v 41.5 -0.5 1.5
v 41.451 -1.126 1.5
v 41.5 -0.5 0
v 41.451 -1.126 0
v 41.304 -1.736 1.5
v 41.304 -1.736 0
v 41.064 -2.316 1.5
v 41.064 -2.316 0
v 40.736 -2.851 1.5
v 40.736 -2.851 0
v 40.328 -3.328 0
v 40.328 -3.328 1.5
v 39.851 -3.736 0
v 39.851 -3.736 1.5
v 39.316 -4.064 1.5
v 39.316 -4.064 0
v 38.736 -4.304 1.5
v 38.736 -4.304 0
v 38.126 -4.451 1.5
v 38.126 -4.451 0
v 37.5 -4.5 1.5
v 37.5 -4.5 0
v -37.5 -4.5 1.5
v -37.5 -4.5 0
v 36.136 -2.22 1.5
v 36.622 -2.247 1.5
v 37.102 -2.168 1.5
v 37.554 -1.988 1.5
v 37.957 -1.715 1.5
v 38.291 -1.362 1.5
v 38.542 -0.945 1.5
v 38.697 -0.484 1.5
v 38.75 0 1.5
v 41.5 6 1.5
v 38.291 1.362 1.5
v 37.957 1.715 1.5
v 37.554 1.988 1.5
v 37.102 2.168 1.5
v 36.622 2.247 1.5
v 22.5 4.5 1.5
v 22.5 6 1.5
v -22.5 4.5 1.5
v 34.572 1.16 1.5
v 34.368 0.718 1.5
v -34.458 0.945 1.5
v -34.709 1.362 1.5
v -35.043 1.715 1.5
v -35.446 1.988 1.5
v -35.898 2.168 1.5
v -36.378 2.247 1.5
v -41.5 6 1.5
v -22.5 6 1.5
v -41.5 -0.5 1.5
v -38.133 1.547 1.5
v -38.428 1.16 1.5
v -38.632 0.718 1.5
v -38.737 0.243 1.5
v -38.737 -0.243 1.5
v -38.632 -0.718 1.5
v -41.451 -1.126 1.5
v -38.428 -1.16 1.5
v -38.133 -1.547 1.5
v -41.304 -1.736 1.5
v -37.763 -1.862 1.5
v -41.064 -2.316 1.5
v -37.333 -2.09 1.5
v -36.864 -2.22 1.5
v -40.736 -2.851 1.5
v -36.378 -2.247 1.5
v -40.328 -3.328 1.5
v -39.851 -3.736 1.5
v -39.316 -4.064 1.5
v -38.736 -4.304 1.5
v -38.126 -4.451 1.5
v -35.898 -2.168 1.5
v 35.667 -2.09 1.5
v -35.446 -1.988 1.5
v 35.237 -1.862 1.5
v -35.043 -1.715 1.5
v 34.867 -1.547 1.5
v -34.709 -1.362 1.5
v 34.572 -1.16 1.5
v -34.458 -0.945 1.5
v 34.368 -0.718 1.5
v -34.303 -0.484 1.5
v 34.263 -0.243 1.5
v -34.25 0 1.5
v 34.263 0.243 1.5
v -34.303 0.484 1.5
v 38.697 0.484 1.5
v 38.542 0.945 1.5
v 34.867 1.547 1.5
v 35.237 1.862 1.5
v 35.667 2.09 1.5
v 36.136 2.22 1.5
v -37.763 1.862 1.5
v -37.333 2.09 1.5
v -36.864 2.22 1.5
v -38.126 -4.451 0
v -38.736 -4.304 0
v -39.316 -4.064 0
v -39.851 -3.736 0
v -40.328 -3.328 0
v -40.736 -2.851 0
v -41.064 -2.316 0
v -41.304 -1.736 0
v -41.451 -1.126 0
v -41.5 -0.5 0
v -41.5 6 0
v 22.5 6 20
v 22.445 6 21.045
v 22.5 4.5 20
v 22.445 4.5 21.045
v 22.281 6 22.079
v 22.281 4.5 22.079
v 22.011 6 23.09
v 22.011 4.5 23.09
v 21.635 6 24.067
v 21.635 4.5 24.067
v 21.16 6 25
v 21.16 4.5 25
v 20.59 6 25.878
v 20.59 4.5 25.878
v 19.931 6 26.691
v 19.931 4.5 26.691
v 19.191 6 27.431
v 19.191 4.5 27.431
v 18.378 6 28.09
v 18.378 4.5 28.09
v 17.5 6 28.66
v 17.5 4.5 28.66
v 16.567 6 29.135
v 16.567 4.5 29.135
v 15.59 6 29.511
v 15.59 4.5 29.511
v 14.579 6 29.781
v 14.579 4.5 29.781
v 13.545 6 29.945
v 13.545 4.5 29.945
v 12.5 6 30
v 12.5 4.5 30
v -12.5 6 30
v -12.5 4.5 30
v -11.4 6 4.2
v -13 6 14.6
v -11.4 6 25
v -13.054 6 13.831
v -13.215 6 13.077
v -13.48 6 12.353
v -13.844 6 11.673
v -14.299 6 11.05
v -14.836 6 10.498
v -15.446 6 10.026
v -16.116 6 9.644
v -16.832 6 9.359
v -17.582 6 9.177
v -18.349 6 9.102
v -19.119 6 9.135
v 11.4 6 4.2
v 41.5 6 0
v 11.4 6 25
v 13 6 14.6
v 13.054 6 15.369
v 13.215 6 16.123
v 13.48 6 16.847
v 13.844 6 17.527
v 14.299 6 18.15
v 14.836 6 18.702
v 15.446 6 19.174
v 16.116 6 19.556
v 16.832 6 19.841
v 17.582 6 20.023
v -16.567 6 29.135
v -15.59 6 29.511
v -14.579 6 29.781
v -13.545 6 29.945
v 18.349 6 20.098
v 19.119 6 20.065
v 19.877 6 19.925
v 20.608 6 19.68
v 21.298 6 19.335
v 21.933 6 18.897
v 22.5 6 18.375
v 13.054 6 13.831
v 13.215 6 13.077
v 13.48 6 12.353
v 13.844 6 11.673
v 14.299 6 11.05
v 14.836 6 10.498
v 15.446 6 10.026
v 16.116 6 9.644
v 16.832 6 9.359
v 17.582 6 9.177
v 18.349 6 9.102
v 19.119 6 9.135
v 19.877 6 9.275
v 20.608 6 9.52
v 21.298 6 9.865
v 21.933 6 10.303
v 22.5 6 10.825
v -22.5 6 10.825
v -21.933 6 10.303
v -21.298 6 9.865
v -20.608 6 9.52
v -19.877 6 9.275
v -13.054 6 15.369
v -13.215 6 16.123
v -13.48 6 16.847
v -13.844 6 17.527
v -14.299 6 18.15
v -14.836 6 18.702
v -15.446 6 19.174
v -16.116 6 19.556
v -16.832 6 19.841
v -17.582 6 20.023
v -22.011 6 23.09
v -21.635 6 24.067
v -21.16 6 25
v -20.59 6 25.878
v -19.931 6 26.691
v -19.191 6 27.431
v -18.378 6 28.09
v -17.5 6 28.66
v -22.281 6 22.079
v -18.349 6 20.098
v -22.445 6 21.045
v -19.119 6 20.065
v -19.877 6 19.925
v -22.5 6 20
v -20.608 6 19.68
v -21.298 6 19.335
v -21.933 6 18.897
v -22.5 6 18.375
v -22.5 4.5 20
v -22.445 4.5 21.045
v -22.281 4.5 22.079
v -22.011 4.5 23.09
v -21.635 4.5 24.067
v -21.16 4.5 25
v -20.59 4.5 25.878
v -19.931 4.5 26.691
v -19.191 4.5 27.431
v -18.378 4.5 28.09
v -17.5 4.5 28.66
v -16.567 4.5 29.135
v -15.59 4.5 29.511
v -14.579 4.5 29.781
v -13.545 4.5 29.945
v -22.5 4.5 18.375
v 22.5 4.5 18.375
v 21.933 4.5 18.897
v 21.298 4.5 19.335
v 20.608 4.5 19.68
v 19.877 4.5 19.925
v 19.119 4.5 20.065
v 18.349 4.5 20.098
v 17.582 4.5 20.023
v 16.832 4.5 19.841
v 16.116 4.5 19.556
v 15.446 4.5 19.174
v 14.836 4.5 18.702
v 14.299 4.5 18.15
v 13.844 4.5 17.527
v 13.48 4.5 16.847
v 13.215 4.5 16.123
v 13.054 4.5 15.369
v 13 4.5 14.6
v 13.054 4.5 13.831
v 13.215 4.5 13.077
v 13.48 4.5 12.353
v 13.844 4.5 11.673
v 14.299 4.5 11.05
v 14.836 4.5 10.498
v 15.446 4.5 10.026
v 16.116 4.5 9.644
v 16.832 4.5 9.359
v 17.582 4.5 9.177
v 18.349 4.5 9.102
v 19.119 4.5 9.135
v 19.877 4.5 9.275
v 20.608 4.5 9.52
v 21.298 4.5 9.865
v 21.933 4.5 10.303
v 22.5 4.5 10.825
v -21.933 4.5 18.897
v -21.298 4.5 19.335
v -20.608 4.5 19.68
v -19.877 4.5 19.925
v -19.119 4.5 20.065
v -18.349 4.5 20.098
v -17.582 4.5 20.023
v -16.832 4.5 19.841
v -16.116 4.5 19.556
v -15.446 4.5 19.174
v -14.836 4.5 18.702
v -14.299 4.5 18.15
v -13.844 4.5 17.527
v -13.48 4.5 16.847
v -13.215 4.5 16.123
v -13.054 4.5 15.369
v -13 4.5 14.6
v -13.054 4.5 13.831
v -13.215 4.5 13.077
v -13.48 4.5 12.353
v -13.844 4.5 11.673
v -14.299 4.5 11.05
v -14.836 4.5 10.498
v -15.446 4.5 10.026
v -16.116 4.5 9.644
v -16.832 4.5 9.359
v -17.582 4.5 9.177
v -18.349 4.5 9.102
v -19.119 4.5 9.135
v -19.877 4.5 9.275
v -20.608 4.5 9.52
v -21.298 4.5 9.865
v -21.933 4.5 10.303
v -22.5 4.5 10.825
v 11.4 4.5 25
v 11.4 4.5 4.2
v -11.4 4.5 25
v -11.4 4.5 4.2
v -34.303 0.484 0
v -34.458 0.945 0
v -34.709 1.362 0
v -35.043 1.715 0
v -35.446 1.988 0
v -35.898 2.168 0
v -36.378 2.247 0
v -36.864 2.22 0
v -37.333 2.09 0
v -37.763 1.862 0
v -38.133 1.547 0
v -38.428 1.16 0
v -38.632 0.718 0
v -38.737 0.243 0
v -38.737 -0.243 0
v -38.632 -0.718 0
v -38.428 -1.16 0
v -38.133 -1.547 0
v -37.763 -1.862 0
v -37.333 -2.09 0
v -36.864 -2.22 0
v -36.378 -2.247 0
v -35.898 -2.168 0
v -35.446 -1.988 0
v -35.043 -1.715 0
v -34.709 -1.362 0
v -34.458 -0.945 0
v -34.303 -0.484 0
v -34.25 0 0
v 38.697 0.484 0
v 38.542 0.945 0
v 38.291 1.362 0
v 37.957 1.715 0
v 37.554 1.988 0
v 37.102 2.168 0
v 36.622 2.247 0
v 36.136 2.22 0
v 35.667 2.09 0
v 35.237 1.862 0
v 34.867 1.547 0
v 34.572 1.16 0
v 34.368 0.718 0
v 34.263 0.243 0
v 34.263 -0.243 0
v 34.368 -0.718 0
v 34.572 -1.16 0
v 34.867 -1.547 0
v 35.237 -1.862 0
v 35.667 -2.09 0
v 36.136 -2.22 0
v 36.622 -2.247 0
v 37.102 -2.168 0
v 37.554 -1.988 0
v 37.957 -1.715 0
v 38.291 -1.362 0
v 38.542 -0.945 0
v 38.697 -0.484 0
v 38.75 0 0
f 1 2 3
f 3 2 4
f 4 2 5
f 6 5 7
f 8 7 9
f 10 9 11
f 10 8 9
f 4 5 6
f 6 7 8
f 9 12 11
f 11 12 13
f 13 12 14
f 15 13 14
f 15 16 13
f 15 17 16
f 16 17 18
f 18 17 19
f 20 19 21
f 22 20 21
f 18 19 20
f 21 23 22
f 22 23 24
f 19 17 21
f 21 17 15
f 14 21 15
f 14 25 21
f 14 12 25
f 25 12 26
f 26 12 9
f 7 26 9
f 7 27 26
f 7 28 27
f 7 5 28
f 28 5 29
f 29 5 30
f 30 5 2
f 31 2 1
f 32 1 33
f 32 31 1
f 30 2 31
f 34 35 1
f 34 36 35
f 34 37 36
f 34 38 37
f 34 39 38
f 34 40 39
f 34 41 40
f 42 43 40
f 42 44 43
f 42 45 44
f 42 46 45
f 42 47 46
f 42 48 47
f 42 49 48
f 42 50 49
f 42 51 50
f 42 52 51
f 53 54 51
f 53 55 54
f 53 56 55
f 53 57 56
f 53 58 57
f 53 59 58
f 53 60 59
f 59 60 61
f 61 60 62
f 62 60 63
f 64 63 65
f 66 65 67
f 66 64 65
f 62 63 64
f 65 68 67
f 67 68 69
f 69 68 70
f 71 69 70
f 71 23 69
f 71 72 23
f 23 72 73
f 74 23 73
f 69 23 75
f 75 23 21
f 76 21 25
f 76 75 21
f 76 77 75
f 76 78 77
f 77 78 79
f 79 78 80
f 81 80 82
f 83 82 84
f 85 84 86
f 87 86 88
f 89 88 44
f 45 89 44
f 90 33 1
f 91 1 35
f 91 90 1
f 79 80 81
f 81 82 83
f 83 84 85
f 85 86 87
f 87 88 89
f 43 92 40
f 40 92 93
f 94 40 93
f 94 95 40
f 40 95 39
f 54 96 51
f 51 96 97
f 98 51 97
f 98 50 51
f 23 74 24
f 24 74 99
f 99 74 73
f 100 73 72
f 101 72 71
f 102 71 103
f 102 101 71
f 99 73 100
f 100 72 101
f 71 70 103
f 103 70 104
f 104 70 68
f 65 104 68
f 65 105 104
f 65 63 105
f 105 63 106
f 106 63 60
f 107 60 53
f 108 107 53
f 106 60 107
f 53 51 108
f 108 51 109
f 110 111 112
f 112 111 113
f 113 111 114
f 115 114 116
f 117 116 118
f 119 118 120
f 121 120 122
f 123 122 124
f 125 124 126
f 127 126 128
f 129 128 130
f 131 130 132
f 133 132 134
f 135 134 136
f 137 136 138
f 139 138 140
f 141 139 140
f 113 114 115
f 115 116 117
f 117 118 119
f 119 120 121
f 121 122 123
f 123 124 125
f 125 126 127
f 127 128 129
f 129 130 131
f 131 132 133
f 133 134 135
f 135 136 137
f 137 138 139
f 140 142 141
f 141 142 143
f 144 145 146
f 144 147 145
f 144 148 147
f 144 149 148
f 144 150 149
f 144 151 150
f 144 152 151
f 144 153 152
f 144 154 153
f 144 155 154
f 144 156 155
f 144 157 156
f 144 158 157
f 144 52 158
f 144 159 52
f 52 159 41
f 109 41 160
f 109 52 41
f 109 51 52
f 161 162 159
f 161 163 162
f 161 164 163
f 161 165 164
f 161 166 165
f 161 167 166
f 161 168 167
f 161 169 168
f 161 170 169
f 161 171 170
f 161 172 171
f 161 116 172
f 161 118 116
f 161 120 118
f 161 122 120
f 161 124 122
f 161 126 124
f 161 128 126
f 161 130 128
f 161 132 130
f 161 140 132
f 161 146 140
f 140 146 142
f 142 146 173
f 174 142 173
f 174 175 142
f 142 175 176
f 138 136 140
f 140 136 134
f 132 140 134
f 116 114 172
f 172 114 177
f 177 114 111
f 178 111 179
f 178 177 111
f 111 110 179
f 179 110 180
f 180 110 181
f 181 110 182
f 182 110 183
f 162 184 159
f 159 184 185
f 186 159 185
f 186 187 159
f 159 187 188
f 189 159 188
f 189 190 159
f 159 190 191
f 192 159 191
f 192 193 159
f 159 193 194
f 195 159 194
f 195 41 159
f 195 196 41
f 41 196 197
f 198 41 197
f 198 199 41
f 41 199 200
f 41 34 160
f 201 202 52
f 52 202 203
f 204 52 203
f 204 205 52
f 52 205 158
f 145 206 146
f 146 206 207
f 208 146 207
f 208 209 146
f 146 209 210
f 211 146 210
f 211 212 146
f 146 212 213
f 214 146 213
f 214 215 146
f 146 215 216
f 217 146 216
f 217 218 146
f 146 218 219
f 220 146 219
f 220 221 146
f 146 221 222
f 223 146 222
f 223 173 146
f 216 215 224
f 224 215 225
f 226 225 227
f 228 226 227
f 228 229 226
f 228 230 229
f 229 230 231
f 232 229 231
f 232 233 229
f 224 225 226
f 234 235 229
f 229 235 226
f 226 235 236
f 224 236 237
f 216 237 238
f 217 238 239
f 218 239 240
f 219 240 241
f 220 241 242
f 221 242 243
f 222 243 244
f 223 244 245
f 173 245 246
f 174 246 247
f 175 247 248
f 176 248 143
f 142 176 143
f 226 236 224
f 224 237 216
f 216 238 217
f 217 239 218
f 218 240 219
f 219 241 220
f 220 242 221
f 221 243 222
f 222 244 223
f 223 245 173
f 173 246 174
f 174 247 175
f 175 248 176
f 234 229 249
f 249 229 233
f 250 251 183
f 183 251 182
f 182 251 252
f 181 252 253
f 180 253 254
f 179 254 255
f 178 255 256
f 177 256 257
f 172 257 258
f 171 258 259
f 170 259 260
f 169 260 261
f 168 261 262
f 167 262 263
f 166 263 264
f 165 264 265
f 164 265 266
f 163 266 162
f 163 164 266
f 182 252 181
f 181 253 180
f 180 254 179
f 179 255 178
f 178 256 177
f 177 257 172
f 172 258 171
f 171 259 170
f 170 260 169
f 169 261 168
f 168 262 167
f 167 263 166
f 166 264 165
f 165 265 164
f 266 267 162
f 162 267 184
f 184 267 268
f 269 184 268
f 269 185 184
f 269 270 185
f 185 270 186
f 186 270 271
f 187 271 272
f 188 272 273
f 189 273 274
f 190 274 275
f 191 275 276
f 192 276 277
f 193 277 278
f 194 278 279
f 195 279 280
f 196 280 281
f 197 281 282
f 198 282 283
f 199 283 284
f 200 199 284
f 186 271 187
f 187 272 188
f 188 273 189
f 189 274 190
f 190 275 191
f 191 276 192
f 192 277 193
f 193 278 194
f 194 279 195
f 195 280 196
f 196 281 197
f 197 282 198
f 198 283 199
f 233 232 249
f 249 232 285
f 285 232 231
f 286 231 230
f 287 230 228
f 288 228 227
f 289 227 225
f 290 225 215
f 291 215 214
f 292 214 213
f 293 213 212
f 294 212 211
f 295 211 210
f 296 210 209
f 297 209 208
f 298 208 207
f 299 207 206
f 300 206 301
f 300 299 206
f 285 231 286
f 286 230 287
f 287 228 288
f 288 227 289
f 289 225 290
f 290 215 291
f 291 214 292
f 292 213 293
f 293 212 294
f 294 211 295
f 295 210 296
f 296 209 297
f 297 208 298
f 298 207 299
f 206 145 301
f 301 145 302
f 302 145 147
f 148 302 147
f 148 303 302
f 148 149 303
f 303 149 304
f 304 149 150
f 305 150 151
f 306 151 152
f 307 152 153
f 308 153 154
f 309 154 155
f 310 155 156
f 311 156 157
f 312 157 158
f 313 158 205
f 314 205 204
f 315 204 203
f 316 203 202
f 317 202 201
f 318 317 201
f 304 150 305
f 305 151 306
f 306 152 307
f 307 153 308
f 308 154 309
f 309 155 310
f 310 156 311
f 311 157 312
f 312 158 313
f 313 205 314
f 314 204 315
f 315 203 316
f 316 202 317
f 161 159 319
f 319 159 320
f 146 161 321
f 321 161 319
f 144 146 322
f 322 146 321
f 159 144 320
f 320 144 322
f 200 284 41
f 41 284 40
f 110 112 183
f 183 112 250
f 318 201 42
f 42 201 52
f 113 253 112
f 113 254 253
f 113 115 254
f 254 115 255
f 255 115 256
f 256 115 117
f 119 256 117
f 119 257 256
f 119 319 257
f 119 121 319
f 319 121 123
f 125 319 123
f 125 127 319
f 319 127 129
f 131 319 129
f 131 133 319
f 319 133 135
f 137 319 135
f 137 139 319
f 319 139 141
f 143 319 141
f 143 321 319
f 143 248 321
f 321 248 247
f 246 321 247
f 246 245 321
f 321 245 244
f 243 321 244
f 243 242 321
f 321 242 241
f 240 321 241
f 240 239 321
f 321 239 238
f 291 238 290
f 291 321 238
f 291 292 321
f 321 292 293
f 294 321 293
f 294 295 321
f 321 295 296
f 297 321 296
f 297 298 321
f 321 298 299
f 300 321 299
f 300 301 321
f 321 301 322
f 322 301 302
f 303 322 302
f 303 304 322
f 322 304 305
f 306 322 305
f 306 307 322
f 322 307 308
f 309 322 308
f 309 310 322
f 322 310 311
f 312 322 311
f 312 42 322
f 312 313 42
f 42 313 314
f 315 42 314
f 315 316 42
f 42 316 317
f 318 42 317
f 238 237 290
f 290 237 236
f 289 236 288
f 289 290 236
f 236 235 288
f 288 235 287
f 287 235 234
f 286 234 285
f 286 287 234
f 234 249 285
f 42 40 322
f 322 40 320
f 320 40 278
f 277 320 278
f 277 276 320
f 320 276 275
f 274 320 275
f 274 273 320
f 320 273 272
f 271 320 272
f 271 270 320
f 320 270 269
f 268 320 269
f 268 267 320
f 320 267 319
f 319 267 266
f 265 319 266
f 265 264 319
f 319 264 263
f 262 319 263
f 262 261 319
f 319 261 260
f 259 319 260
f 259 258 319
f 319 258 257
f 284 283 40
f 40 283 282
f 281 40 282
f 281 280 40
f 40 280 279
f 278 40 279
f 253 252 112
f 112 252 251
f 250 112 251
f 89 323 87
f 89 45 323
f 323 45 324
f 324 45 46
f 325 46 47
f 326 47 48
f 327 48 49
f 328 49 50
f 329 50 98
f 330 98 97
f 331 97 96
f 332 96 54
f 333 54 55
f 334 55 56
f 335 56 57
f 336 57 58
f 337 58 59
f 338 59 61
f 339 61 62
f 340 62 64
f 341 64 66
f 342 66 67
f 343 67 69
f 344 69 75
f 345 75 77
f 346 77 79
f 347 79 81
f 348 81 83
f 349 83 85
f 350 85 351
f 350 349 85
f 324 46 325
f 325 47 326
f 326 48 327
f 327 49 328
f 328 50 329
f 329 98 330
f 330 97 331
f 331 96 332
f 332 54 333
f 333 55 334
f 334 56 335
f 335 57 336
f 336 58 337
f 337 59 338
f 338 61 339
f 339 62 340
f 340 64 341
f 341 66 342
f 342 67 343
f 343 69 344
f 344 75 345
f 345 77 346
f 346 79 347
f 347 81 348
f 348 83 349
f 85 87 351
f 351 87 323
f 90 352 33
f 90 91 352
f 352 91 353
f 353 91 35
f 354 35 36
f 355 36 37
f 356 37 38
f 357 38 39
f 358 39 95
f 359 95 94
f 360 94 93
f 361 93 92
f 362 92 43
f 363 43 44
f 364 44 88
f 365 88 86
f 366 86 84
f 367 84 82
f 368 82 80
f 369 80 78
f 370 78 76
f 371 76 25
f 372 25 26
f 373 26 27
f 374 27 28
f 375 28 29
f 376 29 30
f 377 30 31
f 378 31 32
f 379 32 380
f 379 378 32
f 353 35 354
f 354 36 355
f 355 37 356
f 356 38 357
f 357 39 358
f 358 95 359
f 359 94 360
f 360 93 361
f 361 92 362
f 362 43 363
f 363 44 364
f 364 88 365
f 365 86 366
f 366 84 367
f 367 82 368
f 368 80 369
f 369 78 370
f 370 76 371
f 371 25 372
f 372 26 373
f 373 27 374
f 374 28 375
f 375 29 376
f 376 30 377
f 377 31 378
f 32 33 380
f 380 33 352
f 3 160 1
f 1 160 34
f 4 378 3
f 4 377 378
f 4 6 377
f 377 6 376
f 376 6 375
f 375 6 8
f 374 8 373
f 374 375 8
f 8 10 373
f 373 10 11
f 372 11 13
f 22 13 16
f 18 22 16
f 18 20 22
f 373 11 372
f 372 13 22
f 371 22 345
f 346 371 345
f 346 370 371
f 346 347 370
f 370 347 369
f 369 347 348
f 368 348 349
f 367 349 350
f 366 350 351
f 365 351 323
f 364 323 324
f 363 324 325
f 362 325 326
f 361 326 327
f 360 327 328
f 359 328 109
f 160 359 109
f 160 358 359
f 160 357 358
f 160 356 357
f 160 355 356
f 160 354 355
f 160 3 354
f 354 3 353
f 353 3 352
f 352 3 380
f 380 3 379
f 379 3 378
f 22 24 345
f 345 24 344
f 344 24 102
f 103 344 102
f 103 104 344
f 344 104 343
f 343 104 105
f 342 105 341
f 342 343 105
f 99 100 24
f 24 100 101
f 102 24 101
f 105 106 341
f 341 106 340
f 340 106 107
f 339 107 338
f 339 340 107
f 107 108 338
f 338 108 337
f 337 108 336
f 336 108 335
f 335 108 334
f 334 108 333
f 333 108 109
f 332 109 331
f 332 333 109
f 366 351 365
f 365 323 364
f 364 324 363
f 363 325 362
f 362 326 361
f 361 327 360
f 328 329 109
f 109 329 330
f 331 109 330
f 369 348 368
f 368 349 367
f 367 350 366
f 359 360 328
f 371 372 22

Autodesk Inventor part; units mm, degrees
ref_plane "YZ Plane" through (0, 0, 0) normal (1, 0, 0) x (0, 1, 0)
ref_plane "XZ Plane" through (0, 0, 0) normal (0, 1, 0) x (-1, 0, 0)
ref_plane "XY Plane" through (0, 0, 0) normal (0, 0, 1) x (1, 0, 0)
sketch "Sketch1" plane through (0, 0, 0) normal (0, 0, 1) x (1, 0, 0)
  line L0 (-33.5, 4.5) -> (33.5, 4.5)
  line L1 (33.5, 4.5) -> (33.5, -4.5)
  line L2 (33.5, -4.5) -> (-33.5, -4.5)
  line L3 (-33.5, -4.5) -> (-33.5, 4.5)
  line L4 (-33.5, 4.5) -> (-41.5, 4.5)
  line L5 (-41.5, 4.5) -> (-41.5, -4.5)
  line L6 (-41.5, -4.5) -> (-33.5, -4.5)
  line L7 (-33.5, -4.5) -> (-33.5, 4.5)
  line L8 (33.5, 4.5) -> (41.5, 4.5)
  line L9 (41.5, 4.5) -> (41.5, -4.5)
  line L10 (41.5, -4.5) -> (33.5, -4.5)
  line L11 (33.5, -4.5) -> (33.5, 4.5)
  line L12 (-41.5, 0) -> (41.5, 0) construction
  circle A0 centre (-36.5, 0) radius 2.25
  circle A1 centre (36.5, 0) radius 2.25
  line L13 (0, 4.5) -> (0, -4.5) construction
  line L14 (-22.5, 4.5) -> (22.5, 4.5)
  line L15 (22.5, 4.5) -> (22.5, 6)
  line L16 (22.5, 6) -> (-22.5, 6)
  line L17 (-22.5, 6) -> (-22.5, 4.5)
  line L18 (-22.5, 6) -> (-41.5, 6)
  line L19 (-41.5, 6) -> (-41.5, 4.5)
  line L20 (-41.5, 4.5) -> (-22.5, 4.5)
  line L21 (-22.5, 4.5) -> (-22.5, 6)
  line L22 (22.5, 6) -> (41.5, 6)
  line L23 (41.5, 6) -> (41.5, 4.5)
  line L24 (41.5, 4.5) -> (22.5, 4.5)
  line L25 (22.5, 4.5) -> (22.5, 6)
  point P0 (0, 0)
  point P1 (0, 0)
  point P2 (0, 7)
  point P3 (0, 0)
  point P4 (0, 6)
  dimension "d0" = 9
  dimension "d1" = 67
  dimension "d2" = 4.5
  dimension "d3" = 4.5
  dimension "d4" = 5
  dimension "d5" = 3
  dimension "d6" = 5
  dimension "d7" = 3
  dimension "d12" = 45
  dimension "d13" = 1.5
  dimension "d29" = 83
extrude "Extrusion1" add sketch "Sketch1" along normal blind 1.5
extrude "Extrusion2" add sketch "Sketch1" along normal blind 30 contours L17 L16 L15 L0
sketch "Sketch2" plane through (-41.5, 4.5, 1.5) normal (0, -1, 0) x (1, 0, 0)
  line L0 (64, 0) -> (64, 28.5) projected
  line L1 (19, 28.5) -> (64, 28.5) projected
  line L2 (19, 0) -> (19, 28.5) projected
  circle A0 centre (23, 13.1) radius 5.5
  circle A1 centre (60, 13.1) radius 5.5
  line L3 (41.5, 28.5) -> (41.5, -1.5) construction
  line L4 (30.1, 23.5) -> (52.9, 23.5)
  line L5 (52.9, 23.5) -> (52.9, 2.7)
  line L6 (52.9, 2.7) -> (30.1, 2.7)
  line L7 (30.1, 2.7) -> (30.1, 23.5)
  line L8 (30.1, 13.1) -> (52.9, 13.1) construction
  point P0 (41.5, 23.5)
  dimension "d16" = 11
  dimension "d17" = 11
  dimension "d19" = 4
  dimension "d21" = 4
  dimension "d22" = 5
  dimension "d23" = 22.8
  dimension "d24" = 20.8
extrude "Extrusion3" cut sketch "Sketch2" against normal blind 10
fillet "Fillet1" radius 10 2 edges at (-22.5, 5.25, 30) (22.5, 5.25, 30)
fillet "Fillet2" radius 4 2 edges at (-41.5, -4.5, 0.75) (41.5, -4.5, 0.75)
properties part number "MotorBar"
